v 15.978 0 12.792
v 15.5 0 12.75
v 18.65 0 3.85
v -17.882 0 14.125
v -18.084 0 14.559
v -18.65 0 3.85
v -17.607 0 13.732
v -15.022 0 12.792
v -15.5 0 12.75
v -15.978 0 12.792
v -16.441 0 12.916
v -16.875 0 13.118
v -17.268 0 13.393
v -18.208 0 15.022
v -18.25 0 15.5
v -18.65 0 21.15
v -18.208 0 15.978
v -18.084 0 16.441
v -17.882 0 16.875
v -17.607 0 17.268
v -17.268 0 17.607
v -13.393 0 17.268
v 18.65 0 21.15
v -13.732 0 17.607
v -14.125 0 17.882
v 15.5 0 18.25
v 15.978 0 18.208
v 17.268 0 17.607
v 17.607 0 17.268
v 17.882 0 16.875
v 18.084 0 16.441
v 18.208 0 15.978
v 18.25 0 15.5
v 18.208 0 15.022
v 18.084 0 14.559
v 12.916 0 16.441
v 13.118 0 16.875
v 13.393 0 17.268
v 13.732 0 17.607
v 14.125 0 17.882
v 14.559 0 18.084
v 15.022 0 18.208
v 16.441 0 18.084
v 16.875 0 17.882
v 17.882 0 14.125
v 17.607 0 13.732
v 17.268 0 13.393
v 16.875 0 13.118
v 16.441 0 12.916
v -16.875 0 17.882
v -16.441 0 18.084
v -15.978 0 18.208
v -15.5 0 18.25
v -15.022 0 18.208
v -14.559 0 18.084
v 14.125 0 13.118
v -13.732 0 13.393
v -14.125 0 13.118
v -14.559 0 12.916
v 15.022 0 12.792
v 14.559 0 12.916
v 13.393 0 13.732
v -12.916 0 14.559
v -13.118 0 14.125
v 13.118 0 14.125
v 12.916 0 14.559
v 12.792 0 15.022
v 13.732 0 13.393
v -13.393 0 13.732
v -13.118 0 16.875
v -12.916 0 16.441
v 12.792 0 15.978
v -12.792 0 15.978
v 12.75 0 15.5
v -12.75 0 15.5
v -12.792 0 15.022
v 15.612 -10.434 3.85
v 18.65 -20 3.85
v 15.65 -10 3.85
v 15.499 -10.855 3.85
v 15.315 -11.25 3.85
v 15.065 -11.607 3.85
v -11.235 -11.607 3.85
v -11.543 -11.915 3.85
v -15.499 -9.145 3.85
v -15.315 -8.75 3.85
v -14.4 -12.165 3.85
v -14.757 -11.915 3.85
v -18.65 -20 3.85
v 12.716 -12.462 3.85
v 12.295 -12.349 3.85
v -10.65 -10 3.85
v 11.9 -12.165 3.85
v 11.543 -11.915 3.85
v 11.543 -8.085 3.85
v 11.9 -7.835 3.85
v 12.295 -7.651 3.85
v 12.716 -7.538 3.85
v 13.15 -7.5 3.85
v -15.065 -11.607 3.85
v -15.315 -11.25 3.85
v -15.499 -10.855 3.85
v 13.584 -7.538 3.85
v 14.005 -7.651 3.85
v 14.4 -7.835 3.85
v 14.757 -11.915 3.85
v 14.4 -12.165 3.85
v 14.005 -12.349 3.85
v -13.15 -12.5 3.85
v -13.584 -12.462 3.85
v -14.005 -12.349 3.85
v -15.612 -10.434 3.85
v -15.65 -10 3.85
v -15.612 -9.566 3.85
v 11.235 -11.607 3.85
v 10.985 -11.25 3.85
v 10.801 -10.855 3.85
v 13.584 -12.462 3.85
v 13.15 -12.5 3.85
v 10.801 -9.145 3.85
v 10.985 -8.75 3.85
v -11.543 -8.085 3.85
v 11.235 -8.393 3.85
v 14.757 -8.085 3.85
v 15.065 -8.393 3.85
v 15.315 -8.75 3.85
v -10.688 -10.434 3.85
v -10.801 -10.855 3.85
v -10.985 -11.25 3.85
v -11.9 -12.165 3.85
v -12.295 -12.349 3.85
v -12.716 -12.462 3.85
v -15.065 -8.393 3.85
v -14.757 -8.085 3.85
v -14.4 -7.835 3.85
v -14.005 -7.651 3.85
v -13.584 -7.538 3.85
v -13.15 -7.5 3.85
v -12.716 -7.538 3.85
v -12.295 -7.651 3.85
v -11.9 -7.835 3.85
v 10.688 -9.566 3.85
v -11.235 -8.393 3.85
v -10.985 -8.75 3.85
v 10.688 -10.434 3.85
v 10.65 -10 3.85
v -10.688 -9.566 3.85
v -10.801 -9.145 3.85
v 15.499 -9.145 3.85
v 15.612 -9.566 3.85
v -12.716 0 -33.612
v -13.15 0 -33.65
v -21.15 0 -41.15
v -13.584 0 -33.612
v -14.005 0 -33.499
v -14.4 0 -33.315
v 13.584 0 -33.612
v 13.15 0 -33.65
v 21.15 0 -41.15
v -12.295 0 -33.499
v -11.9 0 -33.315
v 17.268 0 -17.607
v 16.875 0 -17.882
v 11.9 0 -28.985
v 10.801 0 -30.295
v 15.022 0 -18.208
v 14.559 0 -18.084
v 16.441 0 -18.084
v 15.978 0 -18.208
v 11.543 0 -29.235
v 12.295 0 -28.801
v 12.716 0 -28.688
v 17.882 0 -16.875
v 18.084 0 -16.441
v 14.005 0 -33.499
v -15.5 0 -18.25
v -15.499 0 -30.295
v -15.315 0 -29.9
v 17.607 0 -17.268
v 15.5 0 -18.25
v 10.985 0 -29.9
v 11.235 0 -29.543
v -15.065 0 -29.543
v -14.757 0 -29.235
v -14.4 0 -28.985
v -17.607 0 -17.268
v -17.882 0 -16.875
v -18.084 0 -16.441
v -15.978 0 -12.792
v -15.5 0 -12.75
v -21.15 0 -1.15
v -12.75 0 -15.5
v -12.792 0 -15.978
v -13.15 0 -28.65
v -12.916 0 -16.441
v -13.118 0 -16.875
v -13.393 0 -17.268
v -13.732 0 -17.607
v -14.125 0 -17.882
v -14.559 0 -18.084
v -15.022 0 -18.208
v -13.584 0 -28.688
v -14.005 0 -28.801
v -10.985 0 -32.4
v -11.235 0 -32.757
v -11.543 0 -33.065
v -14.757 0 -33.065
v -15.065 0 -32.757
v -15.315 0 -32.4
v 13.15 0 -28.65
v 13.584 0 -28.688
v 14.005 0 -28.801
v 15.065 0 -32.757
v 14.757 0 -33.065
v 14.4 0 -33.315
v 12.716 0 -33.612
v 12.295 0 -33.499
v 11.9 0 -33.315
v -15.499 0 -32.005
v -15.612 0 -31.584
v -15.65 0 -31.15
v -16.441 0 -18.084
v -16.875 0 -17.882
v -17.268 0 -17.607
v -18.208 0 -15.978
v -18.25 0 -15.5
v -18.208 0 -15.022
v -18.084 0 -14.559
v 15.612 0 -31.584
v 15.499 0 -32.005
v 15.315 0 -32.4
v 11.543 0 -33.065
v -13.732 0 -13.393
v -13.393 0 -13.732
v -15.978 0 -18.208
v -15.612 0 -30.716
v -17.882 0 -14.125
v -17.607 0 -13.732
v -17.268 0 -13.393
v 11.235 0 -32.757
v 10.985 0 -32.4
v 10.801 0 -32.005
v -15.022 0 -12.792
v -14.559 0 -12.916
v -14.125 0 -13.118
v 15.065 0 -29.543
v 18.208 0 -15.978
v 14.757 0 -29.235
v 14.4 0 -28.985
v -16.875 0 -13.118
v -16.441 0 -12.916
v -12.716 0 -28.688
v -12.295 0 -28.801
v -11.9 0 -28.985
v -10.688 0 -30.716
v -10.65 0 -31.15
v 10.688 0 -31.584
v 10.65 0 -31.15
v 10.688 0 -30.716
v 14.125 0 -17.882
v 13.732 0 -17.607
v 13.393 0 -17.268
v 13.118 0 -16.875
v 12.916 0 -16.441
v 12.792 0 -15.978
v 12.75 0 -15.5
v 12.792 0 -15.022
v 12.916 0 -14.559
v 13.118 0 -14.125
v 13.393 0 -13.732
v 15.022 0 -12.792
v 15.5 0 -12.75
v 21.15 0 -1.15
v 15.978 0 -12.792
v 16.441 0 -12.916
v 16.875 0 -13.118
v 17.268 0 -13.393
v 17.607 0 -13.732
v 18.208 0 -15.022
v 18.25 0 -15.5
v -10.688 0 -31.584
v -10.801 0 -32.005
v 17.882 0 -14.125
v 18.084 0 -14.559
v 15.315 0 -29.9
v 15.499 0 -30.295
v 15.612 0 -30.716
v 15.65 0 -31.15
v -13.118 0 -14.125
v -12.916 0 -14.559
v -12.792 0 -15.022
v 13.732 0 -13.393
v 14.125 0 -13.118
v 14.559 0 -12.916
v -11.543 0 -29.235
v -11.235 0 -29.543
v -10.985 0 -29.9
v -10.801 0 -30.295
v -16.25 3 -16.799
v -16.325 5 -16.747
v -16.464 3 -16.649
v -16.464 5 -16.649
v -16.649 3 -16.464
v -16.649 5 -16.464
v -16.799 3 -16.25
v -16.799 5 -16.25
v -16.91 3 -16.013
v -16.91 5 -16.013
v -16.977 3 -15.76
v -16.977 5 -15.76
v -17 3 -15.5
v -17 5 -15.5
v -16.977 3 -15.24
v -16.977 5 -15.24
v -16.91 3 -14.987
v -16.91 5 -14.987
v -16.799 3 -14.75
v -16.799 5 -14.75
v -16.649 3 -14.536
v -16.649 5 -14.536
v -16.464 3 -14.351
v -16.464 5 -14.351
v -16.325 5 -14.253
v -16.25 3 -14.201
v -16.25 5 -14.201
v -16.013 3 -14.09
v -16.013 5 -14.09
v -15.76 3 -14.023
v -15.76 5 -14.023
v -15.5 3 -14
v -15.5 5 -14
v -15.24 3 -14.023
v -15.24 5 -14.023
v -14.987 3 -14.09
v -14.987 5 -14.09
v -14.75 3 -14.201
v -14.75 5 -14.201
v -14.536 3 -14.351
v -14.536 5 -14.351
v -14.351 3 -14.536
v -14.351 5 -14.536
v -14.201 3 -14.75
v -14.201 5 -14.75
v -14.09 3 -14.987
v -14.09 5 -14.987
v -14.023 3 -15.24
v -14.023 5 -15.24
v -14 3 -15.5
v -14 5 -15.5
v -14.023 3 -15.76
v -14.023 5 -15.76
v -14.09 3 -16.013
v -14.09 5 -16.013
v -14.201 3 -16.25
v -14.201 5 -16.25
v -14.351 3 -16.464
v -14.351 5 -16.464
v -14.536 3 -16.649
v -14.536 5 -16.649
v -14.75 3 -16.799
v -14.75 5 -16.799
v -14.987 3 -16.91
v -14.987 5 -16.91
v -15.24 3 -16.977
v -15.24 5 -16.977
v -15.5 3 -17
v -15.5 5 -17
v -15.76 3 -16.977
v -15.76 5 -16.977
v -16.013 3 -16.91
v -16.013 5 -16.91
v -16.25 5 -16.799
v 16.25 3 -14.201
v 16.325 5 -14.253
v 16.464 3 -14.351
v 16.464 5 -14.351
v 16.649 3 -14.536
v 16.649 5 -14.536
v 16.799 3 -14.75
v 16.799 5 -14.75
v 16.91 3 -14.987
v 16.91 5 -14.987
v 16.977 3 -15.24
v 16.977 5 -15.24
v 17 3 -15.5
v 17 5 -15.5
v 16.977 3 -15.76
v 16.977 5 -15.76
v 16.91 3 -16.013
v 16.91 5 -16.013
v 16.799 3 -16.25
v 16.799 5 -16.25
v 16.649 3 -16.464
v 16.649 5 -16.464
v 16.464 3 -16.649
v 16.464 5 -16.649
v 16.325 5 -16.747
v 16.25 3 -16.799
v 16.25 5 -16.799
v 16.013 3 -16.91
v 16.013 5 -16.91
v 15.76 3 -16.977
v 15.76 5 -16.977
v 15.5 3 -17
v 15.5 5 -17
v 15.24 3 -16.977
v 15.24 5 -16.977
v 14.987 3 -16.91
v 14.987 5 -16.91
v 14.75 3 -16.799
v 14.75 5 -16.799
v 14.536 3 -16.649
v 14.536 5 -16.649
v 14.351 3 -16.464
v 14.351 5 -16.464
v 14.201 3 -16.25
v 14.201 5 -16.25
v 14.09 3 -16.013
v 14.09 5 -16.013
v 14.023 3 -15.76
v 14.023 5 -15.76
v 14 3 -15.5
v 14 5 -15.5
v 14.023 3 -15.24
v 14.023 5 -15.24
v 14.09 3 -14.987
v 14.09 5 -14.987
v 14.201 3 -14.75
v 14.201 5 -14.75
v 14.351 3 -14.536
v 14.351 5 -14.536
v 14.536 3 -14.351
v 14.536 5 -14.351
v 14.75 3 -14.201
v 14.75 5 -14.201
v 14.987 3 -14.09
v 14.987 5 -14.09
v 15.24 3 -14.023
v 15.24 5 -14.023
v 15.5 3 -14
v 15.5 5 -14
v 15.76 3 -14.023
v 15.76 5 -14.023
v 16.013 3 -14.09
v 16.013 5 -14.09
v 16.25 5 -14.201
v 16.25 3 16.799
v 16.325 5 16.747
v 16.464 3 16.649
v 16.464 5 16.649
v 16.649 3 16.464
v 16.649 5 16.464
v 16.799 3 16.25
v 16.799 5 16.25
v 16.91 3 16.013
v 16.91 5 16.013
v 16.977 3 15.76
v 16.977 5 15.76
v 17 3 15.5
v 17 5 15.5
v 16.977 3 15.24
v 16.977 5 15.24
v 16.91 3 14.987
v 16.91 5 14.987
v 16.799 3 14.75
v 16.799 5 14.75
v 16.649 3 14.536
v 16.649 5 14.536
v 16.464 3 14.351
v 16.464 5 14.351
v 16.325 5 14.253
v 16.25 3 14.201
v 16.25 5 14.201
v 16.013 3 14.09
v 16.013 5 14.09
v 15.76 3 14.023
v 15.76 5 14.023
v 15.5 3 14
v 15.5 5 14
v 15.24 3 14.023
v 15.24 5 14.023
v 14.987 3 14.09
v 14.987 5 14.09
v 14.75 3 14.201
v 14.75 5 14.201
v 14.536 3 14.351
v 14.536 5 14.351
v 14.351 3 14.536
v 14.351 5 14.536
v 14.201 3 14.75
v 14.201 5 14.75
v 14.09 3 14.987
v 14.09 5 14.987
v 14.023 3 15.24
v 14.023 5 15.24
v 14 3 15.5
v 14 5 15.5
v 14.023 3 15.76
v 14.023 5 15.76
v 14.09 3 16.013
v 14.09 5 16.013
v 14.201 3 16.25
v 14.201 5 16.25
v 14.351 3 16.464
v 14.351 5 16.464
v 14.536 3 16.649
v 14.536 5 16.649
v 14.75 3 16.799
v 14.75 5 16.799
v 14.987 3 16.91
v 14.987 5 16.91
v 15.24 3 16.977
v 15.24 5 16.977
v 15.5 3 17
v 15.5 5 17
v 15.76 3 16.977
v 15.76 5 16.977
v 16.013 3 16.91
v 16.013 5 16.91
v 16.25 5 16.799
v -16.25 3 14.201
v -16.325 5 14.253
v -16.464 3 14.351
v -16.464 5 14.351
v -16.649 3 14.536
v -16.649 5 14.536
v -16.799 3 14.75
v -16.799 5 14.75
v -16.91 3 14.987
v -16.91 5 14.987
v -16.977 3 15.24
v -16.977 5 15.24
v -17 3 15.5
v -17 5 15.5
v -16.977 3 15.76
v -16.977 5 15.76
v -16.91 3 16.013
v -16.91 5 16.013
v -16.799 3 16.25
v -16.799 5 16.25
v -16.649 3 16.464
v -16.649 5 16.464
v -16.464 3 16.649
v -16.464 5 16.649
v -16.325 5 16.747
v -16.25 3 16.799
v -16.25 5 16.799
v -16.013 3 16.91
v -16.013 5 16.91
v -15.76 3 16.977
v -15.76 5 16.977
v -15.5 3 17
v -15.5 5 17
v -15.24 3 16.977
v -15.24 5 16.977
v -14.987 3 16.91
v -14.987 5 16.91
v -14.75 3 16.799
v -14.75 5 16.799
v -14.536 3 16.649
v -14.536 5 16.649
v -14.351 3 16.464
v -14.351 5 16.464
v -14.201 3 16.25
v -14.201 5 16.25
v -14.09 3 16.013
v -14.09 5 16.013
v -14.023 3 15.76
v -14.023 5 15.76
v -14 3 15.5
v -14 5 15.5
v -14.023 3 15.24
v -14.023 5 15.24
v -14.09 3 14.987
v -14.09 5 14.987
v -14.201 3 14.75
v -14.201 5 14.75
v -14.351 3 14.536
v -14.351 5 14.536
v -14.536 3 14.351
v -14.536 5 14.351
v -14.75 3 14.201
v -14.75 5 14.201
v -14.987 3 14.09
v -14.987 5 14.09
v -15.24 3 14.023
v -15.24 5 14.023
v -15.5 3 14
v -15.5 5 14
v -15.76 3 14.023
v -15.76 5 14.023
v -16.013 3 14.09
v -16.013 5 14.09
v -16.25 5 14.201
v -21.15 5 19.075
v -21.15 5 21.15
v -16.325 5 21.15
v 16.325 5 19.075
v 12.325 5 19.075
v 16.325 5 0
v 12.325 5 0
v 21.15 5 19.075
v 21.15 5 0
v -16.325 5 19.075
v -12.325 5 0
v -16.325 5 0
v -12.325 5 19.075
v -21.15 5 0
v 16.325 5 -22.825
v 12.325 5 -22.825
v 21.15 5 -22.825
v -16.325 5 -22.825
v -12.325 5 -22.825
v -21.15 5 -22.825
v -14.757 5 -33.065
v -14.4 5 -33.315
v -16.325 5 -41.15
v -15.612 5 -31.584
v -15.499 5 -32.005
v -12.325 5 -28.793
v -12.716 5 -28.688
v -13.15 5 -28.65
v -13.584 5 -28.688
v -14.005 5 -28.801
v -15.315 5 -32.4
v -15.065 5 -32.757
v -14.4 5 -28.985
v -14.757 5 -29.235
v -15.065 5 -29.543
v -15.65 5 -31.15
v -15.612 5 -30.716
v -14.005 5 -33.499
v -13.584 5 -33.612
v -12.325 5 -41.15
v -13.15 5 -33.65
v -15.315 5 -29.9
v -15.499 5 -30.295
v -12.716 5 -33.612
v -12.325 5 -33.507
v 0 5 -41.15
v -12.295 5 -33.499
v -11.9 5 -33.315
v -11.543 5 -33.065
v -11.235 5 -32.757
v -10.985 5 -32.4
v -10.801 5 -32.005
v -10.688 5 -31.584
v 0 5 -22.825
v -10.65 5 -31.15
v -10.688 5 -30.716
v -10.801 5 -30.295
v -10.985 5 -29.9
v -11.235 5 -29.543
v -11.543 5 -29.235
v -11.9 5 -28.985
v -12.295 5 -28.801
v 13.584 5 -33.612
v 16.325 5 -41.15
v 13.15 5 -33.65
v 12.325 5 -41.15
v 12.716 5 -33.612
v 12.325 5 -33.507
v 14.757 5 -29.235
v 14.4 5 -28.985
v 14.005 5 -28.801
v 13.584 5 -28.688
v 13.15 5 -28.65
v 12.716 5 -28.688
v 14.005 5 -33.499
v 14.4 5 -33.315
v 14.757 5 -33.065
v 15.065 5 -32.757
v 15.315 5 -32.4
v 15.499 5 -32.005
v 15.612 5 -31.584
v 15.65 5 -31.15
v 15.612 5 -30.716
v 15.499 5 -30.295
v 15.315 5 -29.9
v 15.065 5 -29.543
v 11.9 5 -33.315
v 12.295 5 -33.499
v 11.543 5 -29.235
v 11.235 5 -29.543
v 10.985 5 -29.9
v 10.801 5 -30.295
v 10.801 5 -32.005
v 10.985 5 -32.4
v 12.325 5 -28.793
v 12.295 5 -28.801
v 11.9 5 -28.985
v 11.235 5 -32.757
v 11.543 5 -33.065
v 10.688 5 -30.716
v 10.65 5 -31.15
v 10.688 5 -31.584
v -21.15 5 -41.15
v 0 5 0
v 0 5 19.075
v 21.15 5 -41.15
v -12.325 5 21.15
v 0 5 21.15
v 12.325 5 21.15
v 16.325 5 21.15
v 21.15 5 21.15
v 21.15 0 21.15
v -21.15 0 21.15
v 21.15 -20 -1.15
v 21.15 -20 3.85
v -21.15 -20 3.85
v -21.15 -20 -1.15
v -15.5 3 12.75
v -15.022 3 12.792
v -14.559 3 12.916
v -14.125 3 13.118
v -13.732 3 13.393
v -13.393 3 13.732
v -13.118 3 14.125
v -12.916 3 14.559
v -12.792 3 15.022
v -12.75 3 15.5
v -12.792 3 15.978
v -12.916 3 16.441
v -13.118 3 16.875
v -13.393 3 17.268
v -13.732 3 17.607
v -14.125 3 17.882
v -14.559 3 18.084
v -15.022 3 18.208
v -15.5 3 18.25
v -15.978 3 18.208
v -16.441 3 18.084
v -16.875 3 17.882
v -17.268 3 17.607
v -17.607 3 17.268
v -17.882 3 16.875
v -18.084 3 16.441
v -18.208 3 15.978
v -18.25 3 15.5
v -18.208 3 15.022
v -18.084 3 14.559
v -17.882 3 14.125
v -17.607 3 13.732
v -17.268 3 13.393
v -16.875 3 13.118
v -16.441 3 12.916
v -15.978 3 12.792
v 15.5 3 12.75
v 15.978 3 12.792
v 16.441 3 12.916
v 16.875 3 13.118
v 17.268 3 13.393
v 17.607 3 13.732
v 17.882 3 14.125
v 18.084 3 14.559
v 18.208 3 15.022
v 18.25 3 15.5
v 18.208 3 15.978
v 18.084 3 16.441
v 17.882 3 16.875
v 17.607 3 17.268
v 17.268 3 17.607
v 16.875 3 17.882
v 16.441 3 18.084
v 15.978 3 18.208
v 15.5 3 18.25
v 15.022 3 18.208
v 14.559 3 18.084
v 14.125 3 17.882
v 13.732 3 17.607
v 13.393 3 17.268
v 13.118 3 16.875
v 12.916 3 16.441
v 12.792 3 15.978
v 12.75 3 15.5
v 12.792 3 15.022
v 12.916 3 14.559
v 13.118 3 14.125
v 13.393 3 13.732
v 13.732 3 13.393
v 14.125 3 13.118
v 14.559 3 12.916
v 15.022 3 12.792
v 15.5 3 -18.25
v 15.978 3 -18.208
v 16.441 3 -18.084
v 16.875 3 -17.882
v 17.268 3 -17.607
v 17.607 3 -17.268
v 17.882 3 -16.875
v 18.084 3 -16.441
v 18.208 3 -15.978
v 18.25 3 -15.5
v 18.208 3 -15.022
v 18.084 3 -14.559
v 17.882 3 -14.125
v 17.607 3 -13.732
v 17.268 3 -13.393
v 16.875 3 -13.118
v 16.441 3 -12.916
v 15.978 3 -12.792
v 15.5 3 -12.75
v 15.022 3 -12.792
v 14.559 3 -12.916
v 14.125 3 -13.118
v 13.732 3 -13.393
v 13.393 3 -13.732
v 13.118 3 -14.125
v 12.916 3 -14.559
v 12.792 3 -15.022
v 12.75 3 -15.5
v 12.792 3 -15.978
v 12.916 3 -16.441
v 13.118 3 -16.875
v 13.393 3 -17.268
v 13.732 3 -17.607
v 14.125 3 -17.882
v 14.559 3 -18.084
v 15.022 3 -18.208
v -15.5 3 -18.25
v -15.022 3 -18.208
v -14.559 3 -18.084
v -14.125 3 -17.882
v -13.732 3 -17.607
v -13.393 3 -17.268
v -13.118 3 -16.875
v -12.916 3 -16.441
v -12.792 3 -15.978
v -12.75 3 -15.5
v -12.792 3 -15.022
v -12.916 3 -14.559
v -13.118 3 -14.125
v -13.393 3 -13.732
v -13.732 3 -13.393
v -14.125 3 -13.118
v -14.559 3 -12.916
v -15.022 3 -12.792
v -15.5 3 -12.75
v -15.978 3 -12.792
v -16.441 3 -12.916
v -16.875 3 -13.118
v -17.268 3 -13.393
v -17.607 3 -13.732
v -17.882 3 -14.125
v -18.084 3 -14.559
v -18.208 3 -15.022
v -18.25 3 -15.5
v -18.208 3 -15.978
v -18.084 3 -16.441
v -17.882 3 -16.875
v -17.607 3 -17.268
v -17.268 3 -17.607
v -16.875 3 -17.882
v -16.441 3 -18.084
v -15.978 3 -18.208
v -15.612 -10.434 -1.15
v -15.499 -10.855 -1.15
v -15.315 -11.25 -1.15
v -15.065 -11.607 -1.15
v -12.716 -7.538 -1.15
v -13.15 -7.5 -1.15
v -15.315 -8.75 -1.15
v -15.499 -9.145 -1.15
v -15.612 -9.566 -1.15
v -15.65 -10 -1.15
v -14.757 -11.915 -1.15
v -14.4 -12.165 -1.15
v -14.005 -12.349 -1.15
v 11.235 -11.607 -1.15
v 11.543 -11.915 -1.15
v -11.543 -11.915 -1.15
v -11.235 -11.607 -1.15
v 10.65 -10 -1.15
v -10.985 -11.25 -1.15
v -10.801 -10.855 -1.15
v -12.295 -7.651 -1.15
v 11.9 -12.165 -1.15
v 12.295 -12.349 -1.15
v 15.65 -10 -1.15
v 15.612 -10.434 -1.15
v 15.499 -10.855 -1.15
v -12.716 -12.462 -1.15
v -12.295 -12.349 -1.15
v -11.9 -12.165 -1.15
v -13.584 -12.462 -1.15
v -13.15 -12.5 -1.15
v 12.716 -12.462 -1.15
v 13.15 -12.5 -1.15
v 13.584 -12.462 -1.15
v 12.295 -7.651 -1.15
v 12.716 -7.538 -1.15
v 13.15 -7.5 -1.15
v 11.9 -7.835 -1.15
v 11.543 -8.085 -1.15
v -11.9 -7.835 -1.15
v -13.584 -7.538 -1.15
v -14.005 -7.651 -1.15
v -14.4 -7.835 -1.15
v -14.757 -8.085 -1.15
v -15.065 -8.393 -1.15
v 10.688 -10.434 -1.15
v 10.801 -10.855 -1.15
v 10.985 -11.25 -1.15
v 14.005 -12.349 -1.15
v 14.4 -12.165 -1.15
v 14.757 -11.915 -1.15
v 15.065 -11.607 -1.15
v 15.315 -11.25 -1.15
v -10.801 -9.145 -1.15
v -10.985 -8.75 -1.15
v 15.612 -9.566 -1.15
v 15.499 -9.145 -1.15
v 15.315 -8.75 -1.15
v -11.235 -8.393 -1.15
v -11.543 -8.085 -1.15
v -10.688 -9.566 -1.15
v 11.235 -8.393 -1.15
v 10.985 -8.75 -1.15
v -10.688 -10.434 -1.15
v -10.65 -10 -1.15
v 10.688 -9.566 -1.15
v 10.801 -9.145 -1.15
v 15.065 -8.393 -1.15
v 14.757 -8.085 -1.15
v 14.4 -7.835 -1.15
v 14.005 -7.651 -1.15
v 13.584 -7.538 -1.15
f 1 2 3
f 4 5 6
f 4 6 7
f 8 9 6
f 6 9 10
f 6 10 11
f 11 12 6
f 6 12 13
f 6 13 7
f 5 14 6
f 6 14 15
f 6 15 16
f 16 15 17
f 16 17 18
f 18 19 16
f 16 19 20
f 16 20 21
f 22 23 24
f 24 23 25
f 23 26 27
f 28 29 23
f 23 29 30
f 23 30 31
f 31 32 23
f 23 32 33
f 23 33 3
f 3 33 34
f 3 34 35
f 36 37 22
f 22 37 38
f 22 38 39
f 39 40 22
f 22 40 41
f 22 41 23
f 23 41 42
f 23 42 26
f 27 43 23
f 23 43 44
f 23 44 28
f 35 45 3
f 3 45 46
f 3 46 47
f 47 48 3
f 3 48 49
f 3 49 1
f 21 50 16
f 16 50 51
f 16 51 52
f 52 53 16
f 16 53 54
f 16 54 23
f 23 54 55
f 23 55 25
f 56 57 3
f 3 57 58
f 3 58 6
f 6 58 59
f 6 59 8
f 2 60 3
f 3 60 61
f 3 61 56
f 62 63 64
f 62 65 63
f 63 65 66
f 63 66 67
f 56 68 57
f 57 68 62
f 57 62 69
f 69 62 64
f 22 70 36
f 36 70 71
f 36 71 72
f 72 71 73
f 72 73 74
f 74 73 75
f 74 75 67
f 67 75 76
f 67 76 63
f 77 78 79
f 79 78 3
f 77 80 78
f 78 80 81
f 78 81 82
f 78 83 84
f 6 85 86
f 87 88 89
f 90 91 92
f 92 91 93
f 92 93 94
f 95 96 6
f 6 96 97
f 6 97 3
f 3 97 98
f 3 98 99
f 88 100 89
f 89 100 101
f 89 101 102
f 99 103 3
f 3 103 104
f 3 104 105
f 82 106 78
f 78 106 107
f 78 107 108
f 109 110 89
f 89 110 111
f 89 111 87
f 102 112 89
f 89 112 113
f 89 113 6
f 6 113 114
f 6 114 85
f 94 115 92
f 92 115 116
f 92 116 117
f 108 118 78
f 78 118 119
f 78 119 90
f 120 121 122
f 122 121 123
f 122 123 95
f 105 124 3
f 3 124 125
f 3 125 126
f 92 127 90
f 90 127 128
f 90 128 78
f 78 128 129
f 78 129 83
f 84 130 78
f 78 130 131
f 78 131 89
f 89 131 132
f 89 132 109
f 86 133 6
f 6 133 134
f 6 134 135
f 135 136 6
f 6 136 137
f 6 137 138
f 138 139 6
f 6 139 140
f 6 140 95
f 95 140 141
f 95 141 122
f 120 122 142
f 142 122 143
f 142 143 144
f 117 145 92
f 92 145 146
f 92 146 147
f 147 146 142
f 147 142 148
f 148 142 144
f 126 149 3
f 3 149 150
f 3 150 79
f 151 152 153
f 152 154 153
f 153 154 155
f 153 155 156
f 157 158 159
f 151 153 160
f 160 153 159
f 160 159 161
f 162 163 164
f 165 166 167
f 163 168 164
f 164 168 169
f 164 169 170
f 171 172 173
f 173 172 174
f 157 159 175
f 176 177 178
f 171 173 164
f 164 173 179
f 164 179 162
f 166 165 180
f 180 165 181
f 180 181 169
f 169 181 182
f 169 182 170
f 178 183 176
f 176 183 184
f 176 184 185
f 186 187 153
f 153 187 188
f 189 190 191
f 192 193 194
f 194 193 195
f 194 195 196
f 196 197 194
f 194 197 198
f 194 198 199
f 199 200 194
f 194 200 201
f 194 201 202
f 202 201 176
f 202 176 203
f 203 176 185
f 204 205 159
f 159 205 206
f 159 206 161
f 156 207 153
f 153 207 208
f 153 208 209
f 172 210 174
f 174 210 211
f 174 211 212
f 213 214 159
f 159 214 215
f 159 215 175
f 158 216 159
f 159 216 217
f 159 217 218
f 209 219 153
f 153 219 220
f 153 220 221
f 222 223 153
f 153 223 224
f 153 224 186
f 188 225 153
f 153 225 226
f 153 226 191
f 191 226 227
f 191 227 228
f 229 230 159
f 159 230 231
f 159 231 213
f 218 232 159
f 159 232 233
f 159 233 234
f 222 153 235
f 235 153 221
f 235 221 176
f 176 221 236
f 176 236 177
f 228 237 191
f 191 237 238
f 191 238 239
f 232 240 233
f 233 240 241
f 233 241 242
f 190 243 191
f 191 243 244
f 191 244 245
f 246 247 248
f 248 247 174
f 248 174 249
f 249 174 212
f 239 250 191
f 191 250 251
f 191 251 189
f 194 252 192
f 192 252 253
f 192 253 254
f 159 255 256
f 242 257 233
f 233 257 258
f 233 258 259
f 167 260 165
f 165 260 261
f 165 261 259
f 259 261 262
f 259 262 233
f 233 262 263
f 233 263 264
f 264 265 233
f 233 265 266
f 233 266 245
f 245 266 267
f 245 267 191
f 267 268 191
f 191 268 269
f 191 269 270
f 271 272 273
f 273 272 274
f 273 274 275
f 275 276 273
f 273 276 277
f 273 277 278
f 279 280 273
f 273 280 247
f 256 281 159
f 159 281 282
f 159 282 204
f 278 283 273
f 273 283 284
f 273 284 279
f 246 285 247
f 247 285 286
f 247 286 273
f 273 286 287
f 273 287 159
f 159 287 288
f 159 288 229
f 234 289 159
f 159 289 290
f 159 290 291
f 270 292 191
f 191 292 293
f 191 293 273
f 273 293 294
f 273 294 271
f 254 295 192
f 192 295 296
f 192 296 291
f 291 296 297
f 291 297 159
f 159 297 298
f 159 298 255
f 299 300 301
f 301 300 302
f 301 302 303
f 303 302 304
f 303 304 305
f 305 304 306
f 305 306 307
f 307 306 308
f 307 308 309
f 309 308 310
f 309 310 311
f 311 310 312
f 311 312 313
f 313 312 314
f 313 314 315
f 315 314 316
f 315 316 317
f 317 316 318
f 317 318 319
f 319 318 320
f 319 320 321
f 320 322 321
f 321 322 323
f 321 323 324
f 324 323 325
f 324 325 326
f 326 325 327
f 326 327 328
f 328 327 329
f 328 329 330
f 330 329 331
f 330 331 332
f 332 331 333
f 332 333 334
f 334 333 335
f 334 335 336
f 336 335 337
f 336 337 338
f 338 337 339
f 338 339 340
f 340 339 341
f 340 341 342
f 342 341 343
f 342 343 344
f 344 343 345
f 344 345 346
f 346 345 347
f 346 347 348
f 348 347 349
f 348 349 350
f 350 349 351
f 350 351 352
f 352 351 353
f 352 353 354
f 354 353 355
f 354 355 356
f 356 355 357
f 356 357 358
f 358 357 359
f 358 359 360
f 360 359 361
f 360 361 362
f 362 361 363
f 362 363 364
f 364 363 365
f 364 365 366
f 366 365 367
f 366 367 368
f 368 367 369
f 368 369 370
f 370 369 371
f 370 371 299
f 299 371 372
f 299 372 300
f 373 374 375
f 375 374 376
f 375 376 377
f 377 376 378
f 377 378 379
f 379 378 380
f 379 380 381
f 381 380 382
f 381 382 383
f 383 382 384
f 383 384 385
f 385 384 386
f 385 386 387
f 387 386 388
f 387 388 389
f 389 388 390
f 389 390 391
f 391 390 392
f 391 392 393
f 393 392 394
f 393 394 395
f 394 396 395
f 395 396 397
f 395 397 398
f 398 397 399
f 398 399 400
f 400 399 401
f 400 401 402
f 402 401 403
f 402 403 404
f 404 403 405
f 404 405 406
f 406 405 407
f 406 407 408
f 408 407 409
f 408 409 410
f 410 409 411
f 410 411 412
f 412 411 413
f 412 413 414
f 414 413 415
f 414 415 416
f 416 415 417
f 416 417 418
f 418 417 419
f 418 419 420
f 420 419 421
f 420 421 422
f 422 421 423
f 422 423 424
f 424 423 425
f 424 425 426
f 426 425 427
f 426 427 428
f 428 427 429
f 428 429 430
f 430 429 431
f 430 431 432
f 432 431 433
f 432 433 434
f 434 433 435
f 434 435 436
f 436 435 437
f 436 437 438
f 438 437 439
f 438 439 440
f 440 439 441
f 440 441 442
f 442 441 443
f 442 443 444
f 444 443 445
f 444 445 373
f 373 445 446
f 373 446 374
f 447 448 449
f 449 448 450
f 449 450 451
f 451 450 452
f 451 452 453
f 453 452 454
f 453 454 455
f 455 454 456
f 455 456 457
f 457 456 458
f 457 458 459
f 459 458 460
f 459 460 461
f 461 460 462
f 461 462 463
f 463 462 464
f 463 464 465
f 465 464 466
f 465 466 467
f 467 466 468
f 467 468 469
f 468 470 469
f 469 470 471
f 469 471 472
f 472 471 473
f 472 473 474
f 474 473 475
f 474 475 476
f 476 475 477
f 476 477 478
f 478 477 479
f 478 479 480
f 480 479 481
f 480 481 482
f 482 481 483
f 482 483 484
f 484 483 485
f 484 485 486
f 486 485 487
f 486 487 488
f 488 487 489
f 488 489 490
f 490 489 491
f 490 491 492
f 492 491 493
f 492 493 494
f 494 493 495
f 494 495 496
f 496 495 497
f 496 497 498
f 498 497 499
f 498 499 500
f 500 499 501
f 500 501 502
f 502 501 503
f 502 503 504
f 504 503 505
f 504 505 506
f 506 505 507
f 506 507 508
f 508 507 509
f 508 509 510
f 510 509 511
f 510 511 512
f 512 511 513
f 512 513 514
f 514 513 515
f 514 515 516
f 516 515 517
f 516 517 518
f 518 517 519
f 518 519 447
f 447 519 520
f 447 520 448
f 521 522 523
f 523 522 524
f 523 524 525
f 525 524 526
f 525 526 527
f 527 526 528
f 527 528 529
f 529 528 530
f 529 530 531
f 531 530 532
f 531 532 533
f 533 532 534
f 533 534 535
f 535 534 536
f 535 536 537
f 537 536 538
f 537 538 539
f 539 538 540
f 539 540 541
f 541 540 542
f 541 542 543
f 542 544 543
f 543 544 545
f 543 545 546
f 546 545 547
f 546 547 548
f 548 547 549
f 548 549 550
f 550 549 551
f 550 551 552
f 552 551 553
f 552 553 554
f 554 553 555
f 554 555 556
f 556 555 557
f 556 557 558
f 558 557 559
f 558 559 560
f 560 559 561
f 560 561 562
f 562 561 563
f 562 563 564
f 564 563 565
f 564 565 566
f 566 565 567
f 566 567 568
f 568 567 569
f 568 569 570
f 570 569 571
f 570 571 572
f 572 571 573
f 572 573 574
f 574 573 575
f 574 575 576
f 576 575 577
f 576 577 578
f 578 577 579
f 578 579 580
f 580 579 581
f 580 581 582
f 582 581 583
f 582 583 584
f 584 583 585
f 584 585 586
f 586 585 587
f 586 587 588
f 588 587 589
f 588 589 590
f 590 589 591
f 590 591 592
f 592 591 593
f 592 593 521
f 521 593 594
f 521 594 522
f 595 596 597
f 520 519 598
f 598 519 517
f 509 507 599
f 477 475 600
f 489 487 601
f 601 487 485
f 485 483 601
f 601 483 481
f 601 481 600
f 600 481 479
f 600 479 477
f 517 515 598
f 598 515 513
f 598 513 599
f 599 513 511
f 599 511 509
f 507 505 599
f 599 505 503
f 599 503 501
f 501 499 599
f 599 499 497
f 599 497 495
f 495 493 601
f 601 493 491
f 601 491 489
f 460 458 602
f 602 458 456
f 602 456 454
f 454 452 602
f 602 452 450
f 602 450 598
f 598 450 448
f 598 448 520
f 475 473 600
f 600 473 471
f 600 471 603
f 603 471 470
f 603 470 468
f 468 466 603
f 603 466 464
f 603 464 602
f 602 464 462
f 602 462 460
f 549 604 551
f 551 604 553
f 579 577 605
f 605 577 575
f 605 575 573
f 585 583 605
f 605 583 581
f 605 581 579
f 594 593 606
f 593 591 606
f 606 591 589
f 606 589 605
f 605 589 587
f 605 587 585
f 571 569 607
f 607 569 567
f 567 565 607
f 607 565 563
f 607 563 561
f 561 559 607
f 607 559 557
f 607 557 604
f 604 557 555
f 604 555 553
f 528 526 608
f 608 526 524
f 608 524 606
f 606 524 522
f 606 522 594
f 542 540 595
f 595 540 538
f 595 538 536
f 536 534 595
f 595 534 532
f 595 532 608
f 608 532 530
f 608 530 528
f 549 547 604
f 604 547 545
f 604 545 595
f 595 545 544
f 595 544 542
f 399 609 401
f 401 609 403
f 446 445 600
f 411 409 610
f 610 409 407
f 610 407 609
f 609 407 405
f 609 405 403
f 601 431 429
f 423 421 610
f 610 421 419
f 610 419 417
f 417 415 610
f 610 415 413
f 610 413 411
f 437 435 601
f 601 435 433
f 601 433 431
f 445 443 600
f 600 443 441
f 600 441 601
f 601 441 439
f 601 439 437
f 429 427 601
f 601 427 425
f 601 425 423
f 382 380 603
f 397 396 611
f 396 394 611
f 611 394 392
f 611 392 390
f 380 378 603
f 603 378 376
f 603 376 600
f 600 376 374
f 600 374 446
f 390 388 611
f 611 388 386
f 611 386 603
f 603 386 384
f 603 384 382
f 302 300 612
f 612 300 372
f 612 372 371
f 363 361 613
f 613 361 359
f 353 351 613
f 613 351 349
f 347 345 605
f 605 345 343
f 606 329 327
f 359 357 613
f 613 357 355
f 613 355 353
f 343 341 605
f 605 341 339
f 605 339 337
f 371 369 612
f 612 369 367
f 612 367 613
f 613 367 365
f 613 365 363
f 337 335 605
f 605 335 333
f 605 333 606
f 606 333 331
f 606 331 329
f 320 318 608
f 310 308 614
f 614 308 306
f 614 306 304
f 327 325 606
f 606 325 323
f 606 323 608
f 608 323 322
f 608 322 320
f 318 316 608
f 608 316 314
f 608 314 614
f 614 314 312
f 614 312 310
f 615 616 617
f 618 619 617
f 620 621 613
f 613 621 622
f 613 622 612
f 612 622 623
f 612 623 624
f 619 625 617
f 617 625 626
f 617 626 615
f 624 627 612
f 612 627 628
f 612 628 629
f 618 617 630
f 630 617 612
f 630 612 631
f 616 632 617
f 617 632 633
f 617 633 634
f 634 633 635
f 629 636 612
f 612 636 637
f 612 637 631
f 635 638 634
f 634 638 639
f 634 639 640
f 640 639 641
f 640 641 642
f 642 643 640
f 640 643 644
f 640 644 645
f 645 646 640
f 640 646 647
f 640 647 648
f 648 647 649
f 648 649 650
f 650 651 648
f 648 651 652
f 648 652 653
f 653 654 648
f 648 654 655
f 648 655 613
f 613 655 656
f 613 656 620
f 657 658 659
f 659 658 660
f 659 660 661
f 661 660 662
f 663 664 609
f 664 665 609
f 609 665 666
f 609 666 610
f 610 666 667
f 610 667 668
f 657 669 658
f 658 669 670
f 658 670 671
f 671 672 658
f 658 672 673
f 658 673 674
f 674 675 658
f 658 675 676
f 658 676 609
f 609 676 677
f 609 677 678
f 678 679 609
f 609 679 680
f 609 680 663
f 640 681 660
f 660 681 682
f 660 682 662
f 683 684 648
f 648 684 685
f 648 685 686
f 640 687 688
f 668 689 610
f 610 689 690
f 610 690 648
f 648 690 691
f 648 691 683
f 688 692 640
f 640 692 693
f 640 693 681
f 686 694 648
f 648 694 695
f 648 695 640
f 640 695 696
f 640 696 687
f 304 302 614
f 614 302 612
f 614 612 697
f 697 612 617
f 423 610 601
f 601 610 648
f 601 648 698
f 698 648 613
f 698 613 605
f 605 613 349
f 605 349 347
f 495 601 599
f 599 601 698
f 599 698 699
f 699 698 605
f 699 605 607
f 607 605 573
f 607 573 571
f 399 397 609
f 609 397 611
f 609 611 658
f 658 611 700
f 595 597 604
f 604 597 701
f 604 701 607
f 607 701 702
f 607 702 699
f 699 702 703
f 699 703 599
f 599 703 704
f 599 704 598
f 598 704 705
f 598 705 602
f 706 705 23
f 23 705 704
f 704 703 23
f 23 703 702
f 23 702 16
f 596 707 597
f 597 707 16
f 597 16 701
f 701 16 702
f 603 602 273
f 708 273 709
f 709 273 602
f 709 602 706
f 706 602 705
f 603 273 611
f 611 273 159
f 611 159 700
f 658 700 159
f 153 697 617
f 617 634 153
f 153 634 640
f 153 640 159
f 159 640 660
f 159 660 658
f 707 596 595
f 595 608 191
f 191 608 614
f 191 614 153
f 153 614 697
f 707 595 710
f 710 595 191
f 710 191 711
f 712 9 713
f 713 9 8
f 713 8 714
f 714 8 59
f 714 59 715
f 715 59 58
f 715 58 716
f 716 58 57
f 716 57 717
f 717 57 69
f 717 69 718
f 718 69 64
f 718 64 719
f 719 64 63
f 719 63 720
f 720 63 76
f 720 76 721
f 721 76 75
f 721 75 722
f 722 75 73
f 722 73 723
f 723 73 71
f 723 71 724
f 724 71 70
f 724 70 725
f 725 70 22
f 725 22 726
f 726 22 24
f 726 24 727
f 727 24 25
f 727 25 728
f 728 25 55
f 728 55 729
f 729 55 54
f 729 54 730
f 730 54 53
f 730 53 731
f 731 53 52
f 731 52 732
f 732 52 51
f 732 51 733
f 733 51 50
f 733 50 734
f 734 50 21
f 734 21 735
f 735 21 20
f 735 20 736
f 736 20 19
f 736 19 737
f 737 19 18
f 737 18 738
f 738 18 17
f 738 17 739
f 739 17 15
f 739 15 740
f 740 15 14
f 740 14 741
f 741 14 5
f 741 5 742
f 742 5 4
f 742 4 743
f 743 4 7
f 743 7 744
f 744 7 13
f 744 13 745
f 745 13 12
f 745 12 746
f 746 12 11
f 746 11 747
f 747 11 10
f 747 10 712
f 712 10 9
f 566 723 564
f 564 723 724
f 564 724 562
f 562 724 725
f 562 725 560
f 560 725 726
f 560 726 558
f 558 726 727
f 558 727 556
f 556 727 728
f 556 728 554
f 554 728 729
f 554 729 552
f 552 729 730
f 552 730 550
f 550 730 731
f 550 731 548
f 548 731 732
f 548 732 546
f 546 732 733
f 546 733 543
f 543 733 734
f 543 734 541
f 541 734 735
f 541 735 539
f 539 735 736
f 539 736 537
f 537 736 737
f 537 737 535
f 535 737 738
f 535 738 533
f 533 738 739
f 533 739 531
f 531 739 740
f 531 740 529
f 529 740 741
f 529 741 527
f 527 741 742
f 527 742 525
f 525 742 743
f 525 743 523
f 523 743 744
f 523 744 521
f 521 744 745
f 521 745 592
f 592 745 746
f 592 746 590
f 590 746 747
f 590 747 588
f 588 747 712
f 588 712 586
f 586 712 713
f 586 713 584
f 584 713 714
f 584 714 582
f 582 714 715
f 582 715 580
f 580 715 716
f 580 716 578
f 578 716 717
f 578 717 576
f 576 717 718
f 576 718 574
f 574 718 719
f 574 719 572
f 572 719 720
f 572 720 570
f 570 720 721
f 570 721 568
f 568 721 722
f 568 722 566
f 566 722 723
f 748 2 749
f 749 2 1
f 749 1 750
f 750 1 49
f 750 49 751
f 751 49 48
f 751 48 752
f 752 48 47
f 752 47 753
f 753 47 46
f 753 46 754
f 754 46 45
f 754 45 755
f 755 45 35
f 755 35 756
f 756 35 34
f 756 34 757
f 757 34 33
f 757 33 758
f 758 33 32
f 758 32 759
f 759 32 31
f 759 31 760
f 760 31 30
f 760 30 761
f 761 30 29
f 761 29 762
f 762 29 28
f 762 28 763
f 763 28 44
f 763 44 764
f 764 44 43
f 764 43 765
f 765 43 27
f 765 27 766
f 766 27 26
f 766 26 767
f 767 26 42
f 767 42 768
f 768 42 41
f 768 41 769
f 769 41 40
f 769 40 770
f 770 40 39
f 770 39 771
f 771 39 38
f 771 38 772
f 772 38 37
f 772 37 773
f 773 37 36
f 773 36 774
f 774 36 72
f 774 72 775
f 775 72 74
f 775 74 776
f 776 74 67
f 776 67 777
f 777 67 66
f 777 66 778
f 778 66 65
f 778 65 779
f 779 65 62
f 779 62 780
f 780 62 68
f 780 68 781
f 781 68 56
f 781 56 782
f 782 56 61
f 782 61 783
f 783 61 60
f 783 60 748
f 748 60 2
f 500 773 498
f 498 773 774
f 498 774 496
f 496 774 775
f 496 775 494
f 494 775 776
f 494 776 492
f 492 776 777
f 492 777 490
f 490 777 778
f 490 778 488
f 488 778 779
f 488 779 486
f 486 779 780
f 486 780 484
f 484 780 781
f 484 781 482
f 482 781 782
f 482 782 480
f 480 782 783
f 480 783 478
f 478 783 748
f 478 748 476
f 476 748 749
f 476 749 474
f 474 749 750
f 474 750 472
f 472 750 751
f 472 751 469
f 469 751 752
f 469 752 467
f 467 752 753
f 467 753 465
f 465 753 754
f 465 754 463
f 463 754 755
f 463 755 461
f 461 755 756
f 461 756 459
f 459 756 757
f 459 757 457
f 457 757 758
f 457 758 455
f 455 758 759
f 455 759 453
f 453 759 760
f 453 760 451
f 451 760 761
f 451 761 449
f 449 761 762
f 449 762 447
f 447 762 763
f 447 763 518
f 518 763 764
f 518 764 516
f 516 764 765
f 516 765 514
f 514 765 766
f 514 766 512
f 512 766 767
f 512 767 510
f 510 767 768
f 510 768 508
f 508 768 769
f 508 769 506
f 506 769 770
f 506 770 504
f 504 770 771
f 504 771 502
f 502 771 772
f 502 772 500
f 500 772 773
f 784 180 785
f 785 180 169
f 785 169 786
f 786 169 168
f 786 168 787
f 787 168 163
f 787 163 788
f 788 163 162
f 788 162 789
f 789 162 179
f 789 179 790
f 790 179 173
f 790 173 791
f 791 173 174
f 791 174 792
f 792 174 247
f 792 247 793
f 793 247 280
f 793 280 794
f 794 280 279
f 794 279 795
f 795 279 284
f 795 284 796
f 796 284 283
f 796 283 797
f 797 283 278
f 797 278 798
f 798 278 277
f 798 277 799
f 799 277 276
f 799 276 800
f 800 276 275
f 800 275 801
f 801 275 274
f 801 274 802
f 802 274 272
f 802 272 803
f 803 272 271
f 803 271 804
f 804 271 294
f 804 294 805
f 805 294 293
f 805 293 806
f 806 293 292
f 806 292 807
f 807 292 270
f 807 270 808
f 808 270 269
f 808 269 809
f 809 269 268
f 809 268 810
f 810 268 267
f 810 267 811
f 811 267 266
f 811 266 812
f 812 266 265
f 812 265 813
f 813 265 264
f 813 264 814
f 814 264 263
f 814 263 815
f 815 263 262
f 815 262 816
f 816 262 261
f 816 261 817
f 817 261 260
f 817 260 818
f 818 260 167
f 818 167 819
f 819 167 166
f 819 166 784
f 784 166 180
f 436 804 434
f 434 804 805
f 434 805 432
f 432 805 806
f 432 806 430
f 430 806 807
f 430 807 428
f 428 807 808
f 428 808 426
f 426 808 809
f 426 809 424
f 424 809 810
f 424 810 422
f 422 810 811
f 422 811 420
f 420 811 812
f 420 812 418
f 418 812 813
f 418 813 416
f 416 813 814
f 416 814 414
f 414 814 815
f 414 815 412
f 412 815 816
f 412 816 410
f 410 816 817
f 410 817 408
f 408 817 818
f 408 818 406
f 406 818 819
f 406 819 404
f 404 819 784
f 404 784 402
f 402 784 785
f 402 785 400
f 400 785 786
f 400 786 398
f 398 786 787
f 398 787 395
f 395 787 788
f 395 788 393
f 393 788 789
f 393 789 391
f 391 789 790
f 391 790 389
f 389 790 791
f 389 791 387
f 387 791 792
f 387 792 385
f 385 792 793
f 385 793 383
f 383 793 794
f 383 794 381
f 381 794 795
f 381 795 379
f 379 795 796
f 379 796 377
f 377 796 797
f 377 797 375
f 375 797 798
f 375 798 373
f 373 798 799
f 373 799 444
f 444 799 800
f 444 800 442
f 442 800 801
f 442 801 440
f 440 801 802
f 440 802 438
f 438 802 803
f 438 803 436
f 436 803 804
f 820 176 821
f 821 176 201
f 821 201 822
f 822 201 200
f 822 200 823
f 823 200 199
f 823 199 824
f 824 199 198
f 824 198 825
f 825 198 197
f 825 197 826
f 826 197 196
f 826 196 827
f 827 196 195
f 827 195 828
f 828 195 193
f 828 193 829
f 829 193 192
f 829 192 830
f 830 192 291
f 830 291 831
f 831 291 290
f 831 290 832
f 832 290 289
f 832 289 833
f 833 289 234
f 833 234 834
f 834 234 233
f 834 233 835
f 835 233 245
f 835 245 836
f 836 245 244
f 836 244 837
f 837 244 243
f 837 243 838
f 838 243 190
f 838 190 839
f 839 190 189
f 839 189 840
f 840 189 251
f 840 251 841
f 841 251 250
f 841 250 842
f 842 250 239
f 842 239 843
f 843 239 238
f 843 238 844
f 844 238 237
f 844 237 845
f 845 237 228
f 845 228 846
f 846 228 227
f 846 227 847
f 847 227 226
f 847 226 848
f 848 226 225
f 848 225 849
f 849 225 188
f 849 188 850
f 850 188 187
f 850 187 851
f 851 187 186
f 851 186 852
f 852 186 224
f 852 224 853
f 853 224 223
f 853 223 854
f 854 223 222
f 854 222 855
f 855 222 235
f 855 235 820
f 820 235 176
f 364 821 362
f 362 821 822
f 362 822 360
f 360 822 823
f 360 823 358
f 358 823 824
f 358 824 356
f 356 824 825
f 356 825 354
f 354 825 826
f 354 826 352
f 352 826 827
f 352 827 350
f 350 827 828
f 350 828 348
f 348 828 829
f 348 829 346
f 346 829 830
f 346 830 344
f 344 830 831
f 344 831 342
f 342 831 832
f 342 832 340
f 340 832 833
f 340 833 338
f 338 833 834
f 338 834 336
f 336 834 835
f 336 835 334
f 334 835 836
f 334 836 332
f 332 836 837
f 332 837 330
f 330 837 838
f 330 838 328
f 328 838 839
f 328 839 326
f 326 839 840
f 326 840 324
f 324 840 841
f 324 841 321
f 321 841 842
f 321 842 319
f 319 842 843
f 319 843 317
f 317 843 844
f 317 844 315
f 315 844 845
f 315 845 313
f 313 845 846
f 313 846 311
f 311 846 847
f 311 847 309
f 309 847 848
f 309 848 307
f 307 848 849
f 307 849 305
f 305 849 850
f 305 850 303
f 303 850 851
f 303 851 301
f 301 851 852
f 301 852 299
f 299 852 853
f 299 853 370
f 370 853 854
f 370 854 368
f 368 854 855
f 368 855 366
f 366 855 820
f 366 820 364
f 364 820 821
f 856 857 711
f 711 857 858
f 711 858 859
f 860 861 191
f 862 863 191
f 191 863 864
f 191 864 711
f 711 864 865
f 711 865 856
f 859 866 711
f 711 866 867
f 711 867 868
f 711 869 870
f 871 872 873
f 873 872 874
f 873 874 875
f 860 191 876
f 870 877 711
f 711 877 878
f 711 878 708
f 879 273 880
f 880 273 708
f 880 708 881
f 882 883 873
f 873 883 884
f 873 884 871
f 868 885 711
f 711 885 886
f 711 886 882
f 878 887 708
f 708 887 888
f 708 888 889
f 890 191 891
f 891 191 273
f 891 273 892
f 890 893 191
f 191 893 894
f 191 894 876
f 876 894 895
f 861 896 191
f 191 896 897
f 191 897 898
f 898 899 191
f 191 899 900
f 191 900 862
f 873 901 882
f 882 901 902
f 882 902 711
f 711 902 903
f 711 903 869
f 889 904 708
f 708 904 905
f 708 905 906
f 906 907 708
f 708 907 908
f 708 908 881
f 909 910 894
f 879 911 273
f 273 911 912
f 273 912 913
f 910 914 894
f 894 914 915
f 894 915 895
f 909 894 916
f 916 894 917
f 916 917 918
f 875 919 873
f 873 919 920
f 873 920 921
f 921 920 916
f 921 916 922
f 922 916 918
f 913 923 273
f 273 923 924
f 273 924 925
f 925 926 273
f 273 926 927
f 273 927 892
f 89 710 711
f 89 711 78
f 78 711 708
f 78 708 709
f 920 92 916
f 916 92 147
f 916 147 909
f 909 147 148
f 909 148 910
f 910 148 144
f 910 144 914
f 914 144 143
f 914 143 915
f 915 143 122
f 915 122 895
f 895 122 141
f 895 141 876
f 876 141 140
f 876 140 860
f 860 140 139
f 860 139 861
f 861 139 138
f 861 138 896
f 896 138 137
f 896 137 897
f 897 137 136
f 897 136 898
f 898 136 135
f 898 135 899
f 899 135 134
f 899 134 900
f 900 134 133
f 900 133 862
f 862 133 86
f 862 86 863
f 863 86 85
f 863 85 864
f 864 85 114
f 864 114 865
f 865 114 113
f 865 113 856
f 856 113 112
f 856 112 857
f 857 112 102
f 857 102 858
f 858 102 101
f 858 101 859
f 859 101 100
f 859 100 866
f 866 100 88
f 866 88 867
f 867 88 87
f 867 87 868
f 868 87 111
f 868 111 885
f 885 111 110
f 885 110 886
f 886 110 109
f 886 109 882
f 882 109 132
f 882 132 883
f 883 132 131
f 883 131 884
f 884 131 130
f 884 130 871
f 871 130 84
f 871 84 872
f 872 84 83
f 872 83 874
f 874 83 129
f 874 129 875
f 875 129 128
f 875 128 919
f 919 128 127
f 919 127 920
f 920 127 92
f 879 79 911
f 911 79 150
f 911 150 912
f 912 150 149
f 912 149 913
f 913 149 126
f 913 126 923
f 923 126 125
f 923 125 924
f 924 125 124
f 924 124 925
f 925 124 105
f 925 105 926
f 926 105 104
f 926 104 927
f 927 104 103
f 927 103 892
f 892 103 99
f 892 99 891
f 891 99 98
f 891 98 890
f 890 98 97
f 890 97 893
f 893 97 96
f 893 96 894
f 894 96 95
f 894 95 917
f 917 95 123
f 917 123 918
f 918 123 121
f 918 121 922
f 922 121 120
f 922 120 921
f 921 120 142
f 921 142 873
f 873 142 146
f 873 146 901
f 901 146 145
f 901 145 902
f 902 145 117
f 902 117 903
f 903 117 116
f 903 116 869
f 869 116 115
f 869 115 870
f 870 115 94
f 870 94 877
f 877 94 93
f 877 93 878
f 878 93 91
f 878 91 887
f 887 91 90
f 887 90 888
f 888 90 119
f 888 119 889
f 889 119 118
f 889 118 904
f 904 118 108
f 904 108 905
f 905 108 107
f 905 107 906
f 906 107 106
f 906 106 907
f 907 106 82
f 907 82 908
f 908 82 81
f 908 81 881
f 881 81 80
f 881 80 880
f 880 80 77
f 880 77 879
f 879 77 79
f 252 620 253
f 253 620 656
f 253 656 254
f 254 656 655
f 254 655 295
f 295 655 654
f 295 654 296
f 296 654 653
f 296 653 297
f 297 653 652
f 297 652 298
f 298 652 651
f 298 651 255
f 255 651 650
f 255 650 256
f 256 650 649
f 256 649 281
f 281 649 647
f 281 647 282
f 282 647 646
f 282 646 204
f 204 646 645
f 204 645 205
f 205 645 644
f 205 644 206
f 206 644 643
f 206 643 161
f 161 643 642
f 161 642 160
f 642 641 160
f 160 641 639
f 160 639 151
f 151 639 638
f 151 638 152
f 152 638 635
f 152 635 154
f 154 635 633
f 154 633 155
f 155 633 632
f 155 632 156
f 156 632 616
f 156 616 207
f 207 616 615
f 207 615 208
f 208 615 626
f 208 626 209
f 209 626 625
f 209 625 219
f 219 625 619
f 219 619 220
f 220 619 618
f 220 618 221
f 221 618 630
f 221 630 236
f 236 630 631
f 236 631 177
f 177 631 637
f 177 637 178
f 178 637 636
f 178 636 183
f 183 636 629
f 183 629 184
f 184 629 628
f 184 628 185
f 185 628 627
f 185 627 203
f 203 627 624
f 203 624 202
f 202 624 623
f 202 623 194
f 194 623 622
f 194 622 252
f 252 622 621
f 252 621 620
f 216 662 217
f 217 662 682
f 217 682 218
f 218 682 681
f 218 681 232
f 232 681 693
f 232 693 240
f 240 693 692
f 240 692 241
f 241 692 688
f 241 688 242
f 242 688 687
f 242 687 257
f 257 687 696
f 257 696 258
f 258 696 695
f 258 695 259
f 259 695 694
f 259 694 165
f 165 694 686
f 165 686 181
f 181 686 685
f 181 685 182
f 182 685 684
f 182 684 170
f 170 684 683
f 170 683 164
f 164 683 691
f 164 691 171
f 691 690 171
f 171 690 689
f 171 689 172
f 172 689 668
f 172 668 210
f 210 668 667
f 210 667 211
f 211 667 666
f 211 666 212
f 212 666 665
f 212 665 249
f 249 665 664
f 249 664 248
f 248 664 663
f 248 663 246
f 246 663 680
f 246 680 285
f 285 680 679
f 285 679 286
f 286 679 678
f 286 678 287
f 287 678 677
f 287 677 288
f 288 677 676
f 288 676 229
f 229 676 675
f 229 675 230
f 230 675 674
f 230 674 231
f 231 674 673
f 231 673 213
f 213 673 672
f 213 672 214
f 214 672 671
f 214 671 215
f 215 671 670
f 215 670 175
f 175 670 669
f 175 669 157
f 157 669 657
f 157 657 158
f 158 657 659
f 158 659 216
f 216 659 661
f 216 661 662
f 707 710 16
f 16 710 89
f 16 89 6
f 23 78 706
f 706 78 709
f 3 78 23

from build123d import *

# Parameters (mm, degrees)
SKETCH1_R           = 1.5
BOSS_EXTRUDE1_DEPTH = 5
SKETCH2_R           = 2.75
CUT_EXTRUDE1_DEPTH  = 3
SKETCH3_W           = 42.3
SKETCH3_H           = 5
BOSS_EXTRUDE2_DEPTH = 20
SKETCH7_R           = 2.5
CUT_EXTRUDE4_DEPTH  = 55.03373946
SKETCH8_R           = 2.5
CUT_EXTRUDE5_DEPTH  = 53.589400073
RIB1_REACH          = 64.311
SKETCH9_WALL_W      = 153.06531809
SKETCH9_WALL_H      = 2.5


with BuildPart() as part:
    # Sketch1 → Boss-Extrude1 (new body)
    with BuildSketch(Plane(origin=(0, 0, 0), x_dir=(1, 0, 0), z_dir=(0, 1, 0))):
        Polygon((-21.15, -21.15), (21.15, -21.15), (21.15, 21.15), (21.15, 41.15), (-21.15, 41.15), (-21.15, 21.15), align=None)
        with Locations(Location((-15.5, 15.5, 0), (0, 0, 270))):
            Circle(SKETCH1_R, mode=Mode.SUBTRACT)
        with Locations(Location((15.5, 15.5, 0), (0, 0, 270))):
            Circle(SKETCH1_R, mode=Mode.SUBTRACT)
        with Locations(Location((-15.5, -15.5, 0), (0, 0, 270))):
            Circle(SKETCH1_R, mode=Mode.SUBTRACT)
        with Locations(Location((15.5, -15.5, 0), (0, 0, 270))):
            Circle(SKETCH1_R, mode=Mode.SUBTRACT)
    extrude(amount=BOSS_EXTRUDE1_DEPTH)

    # Sketch2 → Cut-Extrude1 (cut)
    with BuildSketch(Plane.XZ):
        with Locations(Location((-15.5, 15.5, 0), (0, 0, 270))):
            Circle(SKETCH2_R)
        with Locations(Location((-15.5, -15.5, 0), (0, 0, 270))):
            Circle(SKETCH2_R)
        with Locations(Location((15.5, 15.5, 0), (0, 0, 270))):
            Circle(SKETCH2_R)
        with Locations(Location((15.5, -15.5, 0), (0, 0, 270))):
            Circle(SKETCH2_R)
    extrude(amount=-CUT_EXTRUDE1_DEPTH, mode=Mode.SUBTRACT)

    # Sketch3 → Boss-Extrude2 (add)
    with BuildSketch(Plane.XZ):
        with Locations((0, 1.35)):
            Rectangle(SKETCH3_W, SKETCH3_H)
    extrude(amount=BOSS_EXTRUDE2_DEPTH)

    # Sketch7 → Cut-Extrude4 (cut, through all)
    with BuildSketch(Plane(origin=(0, 1.15, 3.85), x_dir=(1, 0, 0), z_dir=(0, 0, -1))):
        with Locations((-13.15, 11.15)):
            Circle(SKETCH7_R)
        with Locations((13.15, 11.15)):
            Circle(SKETCH7_R)
    extrude(amount=CUT_EXTRUDE4_DEPTH, mode=Mode.SUBTRACT)

    # Sketch8 → Cut-Extrude5 (cut, through all)
    with BuildSketch(Plane(origin=(0, 5, 0), x_dir=(1, 0, 0), z_dir=(0, 1, 0))):
        with Locations(Location((-13.15, 31.15, 0), (0, 0, 270))):
            Circle(SKETCH8_R)
        with Locations(Location((13.15, 31.15, 0), (0, 0, 270))):
            Circle(SKETCH8_R)
    extrude(amount=-CUT_EXTRUDE5_DEPTH, mode=Mode.SUBTRACT)

    # Sketch9 wall → Rib1 (add, up to next)
    with BuildSketch(Plane(origin=(-21.15, -10, 12.5), x_dir=(0, 0.756312601861, 0.65421040061), z_dir=(0, 0.65421040061, -0.756312601861)), mode=Mode.PRIVATE) as rib1_sk1:
        with Locations((0, 1.25)):
            Rectangle(SKETCH9_WALL_W, SKETCH9_WALL_H)
    rib1_tool1 = extrude(rib1_sk1.sketch, amount=RIB1_REACH, mode=Mode.PRIVATE) - part.part
    rib1 = rib1_tool1.solids().sort_by_distance((-21.15, -10, 12.5))[0]
    add(rib1)

    # Mirror1: Rib1 across plane
    add(rib1.mirror(Plane.ZY))


solid = part.part
